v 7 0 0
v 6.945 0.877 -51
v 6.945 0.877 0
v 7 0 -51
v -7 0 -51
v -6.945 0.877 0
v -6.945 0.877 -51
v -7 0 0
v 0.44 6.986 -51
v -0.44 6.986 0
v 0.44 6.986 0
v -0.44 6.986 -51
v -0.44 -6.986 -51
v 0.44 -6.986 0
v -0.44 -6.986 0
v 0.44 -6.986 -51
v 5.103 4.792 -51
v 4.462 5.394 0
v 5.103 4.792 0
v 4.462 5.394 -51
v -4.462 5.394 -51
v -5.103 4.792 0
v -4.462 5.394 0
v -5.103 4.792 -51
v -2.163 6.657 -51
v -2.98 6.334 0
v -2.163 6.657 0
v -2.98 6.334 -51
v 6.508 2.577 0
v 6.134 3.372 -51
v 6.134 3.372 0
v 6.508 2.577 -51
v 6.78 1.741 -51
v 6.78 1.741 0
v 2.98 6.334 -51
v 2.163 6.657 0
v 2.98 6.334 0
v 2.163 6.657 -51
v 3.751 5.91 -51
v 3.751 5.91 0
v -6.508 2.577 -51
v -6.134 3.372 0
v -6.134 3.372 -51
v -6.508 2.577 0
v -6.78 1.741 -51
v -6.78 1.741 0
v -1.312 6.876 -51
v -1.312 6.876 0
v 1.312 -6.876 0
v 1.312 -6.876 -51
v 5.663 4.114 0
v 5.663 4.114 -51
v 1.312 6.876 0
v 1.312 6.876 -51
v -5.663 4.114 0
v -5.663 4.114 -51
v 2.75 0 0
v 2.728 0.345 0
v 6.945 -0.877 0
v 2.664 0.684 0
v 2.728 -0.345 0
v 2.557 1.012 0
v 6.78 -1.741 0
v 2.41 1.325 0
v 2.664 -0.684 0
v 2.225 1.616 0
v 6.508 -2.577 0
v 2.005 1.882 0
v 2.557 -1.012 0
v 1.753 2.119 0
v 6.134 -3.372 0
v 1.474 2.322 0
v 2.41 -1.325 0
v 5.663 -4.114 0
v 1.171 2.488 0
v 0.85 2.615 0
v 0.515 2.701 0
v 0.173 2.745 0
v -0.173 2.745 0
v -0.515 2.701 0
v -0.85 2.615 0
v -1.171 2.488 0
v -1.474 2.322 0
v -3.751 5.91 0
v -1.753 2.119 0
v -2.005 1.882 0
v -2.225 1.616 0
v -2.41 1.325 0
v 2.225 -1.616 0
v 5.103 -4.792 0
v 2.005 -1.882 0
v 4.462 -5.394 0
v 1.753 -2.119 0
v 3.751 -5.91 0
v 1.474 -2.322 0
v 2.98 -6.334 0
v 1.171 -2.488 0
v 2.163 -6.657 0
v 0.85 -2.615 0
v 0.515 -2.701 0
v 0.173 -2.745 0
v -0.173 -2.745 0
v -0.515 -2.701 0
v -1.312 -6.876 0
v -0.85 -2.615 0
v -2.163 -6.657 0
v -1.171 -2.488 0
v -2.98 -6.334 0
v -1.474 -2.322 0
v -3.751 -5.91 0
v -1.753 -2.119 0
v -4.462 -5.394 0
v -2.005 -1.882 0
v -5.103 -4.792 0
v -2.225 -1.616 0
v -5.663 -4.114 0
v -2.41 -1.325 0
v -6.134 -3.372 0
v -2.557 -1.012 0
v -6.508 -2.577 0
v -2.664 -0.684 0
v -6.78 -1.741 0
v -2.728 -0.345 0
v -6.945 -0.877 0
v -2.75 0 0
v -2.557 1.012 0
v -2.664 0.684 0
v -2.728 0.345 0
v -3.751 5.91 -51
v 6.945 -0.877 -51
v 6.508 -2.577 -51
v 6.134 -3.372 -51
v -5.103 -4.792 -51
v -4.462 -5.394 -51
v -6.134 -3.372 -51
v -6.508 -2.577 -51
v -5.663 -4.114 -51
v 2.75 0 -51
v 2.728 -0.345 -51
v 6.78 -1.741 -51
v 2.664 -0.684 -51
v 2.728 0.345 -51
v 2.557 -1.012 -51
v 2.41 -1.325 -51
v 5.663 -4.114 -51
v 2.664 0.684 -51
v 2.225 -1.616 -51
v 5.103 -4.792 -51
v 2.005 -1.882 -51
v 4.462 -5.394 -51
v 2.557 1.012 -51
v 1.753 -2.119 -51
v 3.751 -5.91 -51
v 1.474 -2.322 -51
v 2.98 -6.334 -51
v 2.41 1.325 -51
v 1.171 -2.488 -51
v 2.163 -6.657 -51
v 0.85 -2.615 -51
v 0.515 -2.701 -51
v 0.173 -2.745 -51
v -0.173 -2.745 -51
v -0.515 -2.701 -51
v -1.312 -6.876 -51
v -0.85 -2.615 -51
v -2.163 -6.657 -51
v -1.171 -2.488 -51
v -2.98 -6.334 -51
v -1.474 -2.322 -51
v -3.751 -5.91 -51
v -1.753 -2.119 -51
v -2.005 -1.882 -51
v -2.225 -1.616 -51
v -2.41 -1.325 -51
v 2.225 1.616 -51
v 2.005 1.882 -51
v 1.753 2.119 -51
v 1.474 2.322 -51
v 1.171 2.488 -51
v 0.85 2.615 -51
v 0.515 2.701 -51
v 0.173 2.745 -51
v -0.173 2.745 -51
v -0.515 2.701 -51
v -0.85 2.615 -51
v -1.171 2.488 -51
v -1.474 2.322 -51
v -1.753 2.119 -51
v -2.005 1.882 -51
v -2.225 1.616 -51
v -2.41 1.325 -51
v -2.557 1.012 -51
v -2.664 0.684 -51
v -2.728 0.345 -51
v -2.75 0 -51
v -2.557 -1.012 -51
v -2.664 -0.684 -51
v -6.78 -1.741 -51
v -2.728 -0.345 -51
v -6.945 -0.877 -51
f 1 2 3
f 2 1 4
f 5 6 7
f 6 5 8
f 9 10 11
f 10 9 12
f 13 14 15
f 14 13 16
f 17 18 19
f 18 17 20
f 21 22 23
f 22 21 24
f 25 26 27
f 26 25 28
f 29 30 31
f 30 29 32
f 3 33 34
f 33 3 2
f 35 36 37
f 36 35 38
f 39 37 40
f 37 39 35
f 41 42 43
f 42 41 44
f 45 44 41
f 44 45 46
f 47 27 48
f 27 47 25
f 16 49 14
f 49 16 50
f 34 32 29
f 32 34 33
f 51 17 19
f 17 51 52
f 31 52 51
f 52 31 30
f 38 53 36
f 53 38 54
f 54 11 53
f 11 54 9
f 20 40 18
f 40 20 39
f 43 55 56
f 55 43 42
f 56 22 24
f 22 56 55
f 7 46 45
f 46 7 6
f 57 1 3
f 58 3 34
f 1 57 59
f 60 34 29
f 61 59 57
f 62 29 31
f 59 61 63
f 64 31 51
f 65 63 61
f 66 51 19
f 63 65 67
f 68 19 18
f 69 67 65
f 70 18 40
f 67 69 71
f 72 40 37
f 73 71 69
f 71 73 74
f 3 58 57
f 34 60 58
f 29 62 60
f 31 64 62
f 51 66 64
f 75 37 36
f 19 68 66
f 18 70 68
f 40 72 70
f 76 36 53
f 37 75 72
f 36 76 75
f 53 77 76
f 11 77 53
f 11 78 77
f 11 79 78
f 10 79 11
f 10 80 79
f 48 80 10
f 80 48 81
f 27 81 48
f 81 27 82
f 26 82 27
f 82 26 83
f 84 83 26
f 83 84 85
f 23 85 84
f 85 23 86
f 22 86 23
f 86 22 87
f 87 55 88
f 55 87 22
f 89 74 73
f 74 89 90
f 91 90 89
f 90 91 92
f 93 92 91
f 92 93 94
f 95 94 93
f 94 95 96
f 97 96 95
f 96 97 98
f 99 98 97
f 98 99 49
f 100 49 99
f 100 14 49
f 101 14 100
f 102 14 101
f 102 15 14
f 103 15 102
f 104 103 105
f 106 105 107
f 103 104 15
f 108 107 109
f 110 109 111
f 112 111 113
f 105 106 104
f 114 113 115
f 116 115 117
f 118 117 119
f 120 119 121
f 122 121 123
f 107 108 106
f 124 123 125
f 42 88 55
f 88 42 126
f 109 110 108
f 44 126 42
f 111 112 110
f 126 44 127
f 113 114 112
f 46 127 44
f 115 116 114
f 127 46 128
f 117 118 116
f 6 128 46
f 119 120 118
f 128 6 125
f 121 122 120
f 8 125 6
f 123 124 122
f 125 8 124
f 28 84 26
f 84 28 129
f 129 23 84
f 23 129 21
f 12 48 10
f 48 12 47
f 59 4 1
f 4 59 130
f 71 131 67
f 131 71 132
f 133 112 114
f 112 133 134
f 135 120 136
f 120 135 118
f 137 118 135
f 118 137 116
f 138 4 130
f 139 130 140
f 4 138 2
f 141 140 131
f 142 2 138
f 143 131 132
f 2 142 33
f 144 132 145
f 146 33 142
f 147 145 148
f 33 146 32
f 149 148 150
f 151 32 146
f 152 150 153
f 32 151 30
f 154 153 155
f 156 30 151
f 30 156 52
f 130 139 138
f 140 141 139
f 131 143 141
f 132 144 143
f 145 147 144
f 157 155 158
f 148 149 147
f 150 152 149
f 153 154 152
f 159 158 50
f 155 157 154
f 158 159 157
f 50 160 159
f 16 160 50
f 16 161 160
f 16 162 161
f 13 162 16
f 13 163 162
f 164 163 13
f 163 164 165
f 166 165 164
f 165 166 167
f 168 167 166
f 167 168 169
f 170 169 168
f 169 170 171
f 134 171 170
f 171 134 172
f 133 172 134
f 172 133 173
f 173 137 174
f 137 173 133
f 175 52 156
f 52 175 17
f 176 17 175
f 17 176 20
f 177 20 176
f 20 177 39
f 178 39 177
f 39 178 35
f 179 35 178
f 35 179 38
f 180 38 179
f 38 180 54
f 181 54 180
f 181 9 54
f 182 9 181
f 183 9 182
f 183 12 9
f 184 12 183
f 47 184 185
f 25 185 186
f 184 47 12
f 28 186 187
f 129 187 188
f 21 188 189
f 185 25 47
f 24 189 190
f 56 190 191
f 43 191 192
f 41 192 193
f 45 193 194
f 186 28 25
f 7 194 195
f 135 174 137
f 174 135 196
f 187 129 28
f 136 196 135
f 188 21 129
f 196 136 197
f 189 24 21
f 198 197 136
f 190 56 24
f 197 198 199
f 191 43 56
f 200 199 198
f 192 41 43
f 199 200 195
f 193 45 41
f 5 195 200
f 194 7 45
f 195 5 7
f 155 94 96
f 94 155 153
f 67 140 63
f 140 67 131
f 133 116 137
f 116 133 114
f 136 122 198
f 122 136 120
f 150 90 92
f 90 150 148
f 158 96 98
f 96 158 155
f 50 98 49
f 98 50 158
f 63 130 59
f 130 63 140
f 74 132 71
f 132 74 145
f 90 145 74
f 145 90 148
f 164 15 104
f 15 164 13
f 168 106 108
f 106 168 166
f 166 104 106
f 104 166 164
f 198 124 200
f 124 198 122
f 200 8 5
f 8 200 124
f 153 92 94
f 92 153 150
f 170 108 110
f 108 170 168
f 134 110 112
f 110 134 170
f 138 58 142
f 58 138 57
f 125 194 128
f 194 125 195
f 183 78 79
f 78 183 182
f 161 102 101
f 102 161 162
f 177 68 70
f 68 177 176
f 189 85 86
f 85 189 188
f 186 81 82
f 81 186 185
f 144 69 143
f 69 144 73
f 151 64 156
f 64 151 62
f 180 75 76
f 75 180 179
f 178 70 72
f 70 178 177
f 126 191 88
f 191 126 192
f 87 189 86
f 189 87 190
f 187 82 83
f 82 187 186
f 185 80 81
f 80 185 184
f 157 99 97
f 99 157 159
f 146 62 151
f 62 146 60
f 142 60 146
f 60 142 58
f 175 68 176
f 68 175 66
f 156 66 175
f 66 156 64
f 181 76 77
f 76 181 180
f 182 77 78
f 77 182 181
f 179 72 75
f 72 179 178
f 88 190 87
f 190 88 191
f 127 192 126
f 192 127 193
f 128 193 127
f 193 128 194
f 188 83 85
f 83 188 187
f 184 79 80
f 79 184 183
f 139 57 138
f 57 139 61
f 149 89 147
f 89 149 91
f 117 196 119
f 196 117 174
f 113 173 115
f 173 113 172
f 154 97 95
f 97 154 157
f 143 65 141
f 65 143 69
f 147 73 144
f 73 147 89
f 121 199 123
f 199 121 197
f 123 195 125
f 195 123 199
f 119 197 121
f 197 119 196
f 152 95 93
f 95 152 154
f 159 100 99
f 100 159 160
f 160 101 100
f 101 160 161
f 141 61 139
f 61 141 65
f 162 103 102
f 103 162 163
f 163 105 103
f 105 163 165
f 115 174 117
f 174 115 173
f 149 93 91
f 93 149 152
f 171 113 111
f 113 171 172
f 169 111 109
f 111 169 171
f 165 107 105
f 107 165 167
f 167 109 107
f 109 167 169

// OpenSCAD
$fn = 50;


difference() {
	union() {
		translate(v = [0, 0, -51.0000000000]) {
			cylinder(h = 51, r = 7.0000000000);
		}
		cylinder(h = 0, r = 10.0000000000);
	}
	union() {
		#translate(v = [0, 0, -51]) {
			cylinder(h = 51, r = 2.7500000000);
		}
	}
}
